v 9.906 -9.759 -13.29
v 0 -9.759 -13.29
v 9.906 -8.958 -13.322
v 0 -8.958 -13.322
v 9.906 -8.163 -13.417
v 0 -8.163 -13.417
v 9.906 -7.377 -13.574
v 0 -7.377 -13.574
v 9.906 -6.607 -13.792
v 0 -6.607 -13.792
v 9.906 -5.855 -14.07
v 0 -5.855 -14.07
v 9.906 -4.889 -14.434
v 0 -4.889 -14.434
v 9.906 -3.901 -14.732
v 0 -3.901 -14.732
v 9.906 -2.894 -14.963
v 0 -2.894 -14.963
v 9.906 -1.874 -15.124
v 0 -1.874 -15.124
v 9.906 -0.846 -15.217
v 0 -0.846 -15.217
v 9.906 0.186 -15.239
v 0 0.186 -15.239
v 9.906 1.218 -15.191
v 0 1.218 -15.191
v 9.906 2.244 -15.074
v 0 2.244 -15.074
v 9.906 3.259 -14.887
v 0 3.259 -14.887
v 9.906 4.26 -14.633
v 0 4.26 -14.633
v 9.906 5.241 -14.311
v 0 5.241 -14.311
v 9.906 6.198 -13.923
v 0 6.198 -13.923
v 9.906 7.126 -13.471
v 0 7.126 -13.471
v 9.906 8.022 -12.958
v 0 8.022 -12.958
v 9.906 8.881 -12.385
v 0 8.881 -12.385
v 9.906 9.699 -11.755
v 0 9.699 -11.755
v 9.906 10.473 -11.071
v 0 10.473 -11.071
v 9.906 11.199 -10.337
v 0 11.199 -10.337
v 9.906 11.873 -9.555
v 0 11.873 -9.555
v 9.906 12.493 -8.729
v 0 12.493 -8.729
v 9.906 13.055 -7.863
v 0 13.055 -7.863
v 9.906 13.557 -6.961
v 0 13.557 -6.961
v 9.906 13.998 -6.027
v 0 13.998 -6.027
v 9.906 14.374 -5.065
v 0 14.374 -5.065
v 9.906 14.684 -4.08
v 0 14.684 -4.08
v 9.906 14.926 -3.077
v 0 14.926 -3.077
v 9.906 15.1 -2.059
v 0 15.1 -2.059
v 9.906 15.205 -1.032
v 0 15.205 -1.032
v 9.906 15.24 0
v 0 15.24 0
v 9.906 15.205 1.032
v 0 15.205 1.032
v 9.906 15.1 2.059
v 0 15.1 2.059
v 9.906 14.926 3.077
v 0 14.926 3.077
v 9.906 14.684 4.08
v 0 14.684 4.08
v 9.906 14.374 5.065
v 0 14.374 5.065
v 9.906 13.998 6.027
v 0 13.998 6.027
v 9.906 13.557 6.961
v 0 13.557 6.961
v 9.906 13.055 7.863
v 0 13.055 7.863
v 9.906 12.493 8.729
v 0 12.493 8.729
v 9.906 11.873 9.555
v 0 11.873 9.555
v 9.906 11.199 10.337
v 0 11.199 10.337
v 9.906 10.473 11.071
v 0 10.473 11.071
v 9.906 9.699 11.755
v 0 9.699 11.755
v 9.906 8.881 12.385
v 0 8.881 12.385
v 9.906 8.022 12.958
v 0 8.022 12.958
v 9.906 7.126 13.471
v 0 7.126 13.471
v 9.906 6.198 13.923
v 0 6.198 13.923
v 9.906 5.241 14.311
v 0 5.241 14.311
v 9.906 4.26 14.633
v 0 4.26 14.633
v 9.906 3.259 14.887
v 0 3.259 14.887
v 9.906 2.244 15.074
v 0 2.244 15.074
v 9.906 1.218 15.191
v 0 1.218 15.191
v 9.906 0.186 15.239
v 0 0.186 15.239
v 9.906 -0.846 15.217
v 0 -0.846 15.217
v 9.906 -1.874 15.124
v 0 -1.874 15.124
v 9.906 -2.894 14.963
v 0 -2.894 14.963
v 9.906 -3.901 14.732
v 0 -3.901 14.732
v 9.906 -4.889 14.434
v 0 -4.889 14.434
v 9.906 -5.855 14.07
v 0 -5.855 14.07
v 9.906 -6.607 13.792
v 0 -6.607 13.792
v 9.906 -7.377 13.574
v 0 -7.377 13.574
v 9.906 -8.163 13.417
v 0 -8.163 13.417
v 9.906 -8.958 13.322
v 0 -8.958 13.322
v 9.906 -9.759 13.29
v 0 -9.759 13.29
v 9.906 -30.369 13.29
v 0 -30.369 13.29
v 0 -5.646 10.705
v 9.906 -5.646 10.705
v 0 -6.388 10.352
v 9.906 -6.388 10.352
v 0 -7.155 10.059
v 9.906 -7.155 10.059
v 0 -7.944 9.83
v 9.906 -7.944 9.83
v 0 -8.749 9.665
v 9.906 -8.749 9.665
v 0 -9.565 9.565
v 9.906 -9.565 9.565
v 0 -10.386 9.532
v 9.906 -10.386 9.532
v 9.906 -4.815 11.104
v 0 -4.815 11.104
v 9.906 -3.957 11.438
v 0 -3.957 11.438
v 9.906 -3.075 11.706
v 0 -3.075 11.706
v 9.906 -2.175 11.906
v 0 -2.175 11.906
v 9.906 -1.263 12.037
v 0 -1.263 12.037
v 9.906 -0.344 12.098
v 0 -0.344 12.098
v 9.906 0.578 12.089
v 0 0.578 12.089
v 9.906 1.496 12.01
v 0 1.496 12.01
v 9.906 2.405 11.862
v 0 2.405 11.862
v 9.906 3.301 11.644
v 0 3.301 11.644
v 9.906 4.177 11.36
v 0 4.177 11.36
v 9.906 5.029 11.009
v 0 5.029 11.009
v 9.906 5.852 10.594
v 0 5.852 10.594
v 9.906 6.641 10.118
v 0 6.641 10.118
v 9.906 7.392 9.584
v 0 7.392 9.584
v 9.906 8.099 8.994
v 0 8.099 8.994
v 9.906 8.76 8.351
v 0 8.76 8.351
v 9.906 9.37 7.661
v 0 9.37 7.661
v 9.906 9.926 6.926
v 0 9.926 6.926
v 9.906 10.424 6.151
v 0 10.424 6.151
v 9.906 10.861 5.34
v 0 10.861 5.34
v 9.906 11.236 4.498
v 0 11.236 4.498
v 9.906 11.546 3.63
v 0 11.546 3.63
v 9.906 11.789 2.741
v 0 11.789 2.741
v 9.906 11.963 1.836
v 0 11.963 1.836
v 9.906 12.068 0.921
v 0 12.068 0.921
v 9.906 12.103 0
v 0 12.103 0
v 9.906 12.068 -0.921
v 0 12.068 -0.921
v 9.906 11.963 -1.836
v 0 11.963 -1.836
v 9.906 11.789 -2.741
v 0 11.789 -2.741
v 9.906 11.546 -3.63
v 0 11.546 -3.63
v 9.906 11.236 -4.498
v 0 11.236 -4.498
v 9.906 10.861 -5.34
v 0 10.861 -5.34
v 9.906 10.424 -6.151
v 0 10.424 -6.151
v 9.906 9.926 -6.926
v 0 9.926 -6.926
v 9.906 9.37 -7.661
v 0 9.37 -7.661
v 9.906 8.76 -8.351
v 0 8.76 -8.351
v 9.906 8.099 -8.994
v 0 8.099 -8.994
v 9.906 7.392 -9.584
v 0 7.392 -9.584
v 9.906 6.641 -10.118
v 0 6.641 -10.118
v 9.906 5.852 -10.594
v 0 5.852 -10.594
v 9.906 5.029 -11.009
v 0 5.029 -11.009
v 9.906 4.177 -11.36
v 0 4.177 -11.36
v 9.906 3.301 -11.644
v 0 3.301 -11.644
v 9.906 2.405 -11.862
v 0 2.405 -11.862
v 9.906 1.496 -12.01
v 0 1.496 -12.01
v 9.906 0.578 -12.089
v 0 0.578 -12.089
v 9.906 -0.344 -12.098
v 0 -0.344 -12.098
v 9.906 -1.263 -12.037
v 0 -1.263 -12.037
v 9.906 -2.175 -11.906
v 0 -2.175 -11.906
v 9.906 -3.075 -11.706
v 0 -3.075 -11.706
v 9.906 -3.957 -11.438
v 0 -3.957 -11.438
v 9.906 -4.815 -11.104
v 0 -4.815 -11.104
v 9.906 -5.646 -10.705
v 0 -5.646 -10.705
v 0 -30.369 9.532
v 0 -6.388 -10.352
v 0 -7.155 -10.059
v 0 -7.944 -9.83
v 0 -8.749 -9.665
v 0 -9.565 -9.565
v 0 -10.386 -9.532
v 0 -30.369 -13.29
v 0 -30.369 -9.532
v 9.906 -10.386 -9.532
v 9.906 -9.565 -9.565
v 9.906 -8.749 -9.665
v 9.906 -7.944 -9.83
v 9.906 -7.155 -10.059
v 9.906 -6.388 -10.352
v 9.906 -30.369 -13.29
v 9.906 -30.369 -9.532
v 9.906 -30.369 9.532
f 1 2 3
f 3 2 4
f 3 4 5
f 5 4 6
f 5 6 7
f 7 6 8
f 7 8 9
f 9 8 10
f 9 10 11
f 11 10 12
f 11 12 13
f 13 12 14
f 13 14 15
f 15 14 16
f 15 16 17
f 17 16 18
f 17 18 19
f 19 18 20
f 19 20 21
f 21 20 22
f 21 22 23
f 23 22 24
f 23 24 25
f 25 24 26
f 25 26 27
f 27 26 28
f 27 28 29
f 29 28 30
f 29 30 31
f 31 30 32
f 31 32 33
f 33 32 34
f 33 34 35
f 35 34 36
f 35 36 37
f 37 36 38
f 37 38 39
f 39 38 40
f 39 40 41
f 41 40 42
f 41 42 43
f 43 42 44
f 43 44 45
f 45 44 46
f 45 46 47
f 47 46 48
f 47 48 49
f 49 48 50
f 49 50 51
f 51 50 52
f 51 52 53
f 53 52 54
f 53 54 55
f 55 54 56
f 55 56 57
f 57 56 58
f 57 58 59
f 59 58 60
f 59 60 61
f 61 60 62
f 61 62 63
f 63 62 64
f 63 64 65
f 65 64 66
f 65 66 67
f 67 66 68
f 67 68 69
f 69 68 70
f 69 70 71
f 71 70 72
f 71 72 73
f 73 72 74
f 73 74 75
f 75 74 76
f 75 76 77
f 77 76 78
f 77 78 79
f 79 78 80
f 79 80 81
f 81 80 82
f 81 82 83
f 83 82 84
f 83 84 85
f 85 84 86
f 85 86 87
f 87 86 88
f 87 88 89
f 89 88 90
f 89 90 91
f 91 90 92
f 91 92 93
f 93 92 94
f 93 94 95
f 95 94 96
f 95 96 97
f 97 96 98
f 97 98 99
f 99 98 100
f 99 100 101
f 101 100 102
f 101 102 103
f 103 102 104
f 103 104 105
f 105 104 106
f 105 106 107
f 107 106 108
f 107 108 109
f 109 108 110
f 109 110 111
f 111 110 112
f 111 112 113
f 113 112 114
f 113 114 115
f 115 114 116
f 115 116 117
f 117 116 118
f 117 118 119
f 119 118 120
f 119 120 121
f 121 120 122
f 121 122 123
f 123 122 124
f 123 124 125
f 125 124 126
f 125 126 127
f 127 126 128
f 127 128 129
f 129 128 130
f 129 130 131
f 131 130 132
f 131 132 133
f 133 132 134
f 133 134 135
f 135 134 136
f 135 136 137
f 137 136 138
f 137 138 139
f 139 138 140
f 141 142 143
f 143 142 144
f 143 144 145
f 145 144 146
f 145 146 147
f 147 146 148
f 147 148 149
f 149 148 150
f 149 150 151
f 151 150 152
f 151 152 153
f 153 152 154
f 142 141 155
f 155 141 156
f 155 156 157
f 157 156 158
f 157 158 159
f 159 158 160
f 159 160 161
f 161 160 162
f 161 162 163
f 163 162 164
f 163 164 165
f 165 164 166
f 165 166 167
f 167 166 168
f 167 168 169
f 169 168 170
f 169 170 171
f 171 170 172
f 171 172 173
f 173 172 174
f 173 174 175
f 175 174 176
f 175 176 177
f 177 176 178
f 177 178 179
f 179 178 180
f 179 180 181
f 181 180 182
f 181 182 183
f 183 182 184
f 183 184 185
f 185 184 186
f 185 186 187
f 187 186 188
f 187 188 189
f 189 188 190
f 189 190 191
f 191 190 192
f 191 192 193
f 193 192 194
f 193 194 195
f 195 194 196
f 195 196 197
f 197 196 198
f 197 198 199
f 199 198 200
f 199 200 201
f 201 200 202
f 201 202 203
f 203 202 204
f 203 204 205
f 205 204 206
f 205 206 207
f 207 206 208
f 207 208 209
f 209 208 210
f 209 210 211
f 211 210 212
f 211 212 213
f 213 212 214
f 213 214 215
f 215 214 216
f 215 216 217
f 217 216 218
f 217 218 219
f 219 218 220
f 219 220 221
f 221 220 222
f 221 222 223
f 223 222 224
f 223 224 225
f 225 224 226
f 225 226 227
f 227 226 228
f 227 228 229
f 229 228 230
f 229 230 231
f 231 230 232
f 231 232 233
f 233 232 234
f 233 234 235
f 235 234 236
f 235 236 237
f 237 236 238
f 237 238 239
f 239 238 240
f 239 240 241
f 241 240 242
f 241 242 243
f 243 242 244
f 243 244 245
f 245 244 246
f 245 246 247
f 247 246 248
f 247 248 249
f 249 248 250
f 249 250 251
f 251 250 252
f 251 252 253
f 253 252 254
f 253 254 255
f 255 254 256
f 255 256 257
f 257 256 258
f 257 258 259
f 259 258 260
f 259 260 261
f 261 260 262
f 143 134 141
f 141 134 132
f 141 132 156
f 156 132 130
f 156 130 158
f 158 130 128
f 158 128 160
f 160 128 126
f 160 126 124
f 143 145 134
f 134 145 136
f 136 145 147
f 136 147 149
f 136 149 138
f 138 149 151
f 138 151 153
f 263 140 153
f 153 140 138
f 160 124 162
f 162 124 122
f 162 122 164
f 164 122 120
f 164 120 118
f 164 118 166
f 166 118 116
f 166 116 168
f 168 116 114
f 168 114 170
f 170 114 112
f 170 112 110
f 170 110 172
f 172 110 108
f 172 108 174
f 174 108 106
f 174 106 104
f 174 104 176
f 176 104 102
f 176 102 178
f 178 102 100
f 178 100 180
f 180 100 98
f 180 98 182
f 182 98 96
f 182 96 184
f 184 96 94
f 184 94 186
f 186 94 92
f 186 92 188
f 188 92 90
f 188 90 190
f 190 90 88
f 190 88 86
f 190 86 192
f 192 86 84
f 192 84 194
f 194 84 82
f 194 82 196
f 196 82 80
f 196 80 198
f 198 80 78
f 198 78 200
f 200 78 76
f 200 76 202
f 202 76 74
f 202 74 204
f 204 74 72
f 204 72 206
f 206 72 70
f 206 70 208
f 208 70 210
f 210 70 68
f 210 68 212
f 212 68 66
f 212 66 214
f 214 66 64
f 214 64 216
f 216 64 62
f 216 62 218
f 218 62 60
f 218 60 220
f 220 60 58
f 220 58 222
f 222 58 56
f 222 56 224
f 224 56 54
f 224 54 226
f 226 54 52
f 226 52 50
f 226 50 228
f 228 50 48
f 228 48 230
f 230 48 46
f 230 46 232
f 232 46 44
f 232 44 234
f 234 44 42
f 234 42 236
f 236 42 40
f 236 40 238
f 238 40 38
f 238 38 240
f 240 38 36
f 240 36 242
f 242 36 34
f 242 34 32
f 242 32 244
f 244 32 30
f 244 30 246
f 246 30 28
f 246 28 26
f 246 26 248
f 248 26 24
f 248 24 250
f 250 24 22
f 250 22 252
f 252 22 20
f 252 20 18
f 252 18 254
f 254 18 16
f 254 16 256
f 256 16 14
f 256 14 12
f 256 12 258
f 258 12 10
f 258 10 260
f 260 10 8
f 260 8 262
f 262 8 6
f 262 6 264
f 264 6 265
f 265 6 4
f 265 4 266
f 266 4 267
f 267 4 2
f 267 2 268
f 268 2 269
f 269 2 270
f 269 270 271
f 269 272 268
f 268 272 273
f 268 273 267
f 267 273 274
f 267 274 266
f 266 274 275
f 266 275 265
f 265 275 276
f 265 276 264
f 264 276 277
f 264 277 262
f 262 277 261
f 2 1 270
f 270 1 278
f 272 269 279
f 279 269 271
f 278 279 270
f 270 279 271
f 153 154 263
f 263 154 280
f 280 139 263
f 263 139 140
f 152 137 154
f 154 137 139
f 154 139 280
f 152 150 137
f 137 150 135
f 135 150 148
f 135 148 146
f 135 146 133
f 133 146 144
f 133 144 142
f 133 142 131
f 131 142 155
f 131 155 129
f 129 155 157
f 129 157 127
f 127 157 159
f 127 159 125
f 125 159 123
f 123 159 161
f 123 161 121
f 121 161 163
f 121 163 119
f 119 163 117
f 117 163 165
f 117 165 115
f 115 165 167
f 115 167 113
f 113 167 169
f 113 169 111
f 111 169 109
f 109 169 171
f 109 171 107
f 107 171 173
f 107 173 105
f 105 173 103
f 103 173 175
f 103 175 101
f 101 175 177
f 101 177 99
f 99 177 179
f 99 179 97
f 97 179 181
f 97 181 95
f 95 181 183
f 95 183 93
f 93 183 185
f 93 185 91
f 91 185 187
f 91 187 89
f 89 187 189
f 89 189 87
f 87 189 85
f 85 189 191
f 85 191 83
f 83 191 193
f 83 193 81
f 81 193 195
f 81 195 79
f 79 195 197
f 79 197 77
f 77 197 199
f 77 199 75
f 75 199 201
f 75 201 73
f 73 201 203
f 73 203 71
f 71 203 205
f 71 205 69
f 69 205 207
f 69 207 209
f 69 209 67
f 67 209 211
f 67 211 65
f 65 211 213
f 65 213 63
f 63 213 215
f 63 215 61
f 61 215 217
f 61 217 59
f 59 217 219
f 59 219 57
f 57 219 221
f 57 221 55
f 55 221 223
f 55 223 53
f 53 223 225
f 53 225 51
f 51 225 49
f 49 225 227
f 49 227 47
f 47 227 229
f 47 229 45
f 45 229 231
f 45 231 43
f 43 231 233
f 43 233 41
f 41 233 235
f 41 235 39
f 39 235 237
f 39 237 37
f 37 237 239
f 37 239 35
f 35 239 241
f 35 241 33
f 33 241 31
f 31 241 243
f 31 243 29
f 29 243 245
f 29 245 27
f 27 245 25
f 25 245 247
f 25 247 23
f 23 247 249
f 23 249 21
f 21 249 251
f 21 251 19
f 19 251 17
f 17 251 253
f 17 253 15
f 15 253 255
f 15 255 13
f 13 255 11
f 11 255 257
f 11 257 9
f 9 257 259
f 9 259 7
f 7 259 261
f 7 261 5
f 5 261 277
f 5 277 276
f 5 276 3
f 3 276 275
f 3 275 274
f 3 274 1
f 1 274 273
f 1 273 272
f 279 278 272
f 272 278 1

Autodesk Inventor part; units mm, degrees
ref_plane "YZ Plane" through (0, 0, 0) normal (1, 0, 0) x (0, 1, 0)
ref_plane "XZ Plane" through (0, 0, 0) normal (0, 1, 0) x (-1, 0, 0)
ref_plane "XY Plane" through (0, 0, 0) normal (0, 0, 1) x (1, 0, 0)
sketch "Sketch1" plane through (0, 0, 0) normal (1, 0, 0) x (0, 1, 0)
  line L0 (-7.458, 13.2905) -> (-7.458, -13.2905)
  arc A0 (-7.458, -9.5323) -> (-7.458, 9.5323) centre (0, 0) ccw
  arc A1 (-7.458, -13.2905) -> (-7.458, 13.2905) centre (0, 0) ccw
  point P0 (0, 0)
extrude "Extrusion1" add sketch "Sketch1" along normal blind 9.906 contours A1 L0 A0
sketch "Sketch2" plane through (0, -7.458, 9.5323) normal (0, -1, 0) x (1, 0, 0)
  line L0 (9.906, 3.7582) -> (9.906, 0) projected
  line L1 (9.906, 3.7582) -> (0, 3.7582)
  line L2 (0, 3.7582) -> (0, 0)
  line L3 (0, 0) -> (9.906, 0)
  line L4 (9.906, 0) -> (9.906, 3.7582)
  point P0 (0, -9.5323)
extrude "Extrusion2" add sketch "Sketch2" along normal blind 22.9108
sketch "Sketch3" plane through (0, -7.458, -13.2905) normal (0, -1, 0) x (1, 0, 0)
  line L0 (9.906, 3.7582) -> (9.906, 0) projected
  line L1 (9.906, 3.7582) -> (0, 3.7582)
  line L2 (0, 3.7582) -> (0, 0)
  line L3 (0, 0) -> (9.906, 0)
  line L4 (9.906, 0) -> (9.906, 3.7582)
  point P0 (0, 13.2905)
extrude "Extrusion3" add sketch "Sketch3" along normal blind 22.9108
fillet "Fillet1" radius 10.16 1 edges at (4.953, -7.458, -9.5323)
fillet "Fillet2" radius 10.16 1 edges at (4.953, -7.458, 9.5323)
fillet "Fillet3" radius 10.16 1 edges at (4.953, -7.458, 13.2905)
fillet "Fillet4" radius 10.16 1 edges at (4.953, -7.458, -13.2905)
sketch "Sketch5" plane through (9.906, 0, 0) normal (1, 0, 0) x (0, 0, -1)
  point P0 (0, 0)
properties part number "eye motor holder2_3DPrint"
